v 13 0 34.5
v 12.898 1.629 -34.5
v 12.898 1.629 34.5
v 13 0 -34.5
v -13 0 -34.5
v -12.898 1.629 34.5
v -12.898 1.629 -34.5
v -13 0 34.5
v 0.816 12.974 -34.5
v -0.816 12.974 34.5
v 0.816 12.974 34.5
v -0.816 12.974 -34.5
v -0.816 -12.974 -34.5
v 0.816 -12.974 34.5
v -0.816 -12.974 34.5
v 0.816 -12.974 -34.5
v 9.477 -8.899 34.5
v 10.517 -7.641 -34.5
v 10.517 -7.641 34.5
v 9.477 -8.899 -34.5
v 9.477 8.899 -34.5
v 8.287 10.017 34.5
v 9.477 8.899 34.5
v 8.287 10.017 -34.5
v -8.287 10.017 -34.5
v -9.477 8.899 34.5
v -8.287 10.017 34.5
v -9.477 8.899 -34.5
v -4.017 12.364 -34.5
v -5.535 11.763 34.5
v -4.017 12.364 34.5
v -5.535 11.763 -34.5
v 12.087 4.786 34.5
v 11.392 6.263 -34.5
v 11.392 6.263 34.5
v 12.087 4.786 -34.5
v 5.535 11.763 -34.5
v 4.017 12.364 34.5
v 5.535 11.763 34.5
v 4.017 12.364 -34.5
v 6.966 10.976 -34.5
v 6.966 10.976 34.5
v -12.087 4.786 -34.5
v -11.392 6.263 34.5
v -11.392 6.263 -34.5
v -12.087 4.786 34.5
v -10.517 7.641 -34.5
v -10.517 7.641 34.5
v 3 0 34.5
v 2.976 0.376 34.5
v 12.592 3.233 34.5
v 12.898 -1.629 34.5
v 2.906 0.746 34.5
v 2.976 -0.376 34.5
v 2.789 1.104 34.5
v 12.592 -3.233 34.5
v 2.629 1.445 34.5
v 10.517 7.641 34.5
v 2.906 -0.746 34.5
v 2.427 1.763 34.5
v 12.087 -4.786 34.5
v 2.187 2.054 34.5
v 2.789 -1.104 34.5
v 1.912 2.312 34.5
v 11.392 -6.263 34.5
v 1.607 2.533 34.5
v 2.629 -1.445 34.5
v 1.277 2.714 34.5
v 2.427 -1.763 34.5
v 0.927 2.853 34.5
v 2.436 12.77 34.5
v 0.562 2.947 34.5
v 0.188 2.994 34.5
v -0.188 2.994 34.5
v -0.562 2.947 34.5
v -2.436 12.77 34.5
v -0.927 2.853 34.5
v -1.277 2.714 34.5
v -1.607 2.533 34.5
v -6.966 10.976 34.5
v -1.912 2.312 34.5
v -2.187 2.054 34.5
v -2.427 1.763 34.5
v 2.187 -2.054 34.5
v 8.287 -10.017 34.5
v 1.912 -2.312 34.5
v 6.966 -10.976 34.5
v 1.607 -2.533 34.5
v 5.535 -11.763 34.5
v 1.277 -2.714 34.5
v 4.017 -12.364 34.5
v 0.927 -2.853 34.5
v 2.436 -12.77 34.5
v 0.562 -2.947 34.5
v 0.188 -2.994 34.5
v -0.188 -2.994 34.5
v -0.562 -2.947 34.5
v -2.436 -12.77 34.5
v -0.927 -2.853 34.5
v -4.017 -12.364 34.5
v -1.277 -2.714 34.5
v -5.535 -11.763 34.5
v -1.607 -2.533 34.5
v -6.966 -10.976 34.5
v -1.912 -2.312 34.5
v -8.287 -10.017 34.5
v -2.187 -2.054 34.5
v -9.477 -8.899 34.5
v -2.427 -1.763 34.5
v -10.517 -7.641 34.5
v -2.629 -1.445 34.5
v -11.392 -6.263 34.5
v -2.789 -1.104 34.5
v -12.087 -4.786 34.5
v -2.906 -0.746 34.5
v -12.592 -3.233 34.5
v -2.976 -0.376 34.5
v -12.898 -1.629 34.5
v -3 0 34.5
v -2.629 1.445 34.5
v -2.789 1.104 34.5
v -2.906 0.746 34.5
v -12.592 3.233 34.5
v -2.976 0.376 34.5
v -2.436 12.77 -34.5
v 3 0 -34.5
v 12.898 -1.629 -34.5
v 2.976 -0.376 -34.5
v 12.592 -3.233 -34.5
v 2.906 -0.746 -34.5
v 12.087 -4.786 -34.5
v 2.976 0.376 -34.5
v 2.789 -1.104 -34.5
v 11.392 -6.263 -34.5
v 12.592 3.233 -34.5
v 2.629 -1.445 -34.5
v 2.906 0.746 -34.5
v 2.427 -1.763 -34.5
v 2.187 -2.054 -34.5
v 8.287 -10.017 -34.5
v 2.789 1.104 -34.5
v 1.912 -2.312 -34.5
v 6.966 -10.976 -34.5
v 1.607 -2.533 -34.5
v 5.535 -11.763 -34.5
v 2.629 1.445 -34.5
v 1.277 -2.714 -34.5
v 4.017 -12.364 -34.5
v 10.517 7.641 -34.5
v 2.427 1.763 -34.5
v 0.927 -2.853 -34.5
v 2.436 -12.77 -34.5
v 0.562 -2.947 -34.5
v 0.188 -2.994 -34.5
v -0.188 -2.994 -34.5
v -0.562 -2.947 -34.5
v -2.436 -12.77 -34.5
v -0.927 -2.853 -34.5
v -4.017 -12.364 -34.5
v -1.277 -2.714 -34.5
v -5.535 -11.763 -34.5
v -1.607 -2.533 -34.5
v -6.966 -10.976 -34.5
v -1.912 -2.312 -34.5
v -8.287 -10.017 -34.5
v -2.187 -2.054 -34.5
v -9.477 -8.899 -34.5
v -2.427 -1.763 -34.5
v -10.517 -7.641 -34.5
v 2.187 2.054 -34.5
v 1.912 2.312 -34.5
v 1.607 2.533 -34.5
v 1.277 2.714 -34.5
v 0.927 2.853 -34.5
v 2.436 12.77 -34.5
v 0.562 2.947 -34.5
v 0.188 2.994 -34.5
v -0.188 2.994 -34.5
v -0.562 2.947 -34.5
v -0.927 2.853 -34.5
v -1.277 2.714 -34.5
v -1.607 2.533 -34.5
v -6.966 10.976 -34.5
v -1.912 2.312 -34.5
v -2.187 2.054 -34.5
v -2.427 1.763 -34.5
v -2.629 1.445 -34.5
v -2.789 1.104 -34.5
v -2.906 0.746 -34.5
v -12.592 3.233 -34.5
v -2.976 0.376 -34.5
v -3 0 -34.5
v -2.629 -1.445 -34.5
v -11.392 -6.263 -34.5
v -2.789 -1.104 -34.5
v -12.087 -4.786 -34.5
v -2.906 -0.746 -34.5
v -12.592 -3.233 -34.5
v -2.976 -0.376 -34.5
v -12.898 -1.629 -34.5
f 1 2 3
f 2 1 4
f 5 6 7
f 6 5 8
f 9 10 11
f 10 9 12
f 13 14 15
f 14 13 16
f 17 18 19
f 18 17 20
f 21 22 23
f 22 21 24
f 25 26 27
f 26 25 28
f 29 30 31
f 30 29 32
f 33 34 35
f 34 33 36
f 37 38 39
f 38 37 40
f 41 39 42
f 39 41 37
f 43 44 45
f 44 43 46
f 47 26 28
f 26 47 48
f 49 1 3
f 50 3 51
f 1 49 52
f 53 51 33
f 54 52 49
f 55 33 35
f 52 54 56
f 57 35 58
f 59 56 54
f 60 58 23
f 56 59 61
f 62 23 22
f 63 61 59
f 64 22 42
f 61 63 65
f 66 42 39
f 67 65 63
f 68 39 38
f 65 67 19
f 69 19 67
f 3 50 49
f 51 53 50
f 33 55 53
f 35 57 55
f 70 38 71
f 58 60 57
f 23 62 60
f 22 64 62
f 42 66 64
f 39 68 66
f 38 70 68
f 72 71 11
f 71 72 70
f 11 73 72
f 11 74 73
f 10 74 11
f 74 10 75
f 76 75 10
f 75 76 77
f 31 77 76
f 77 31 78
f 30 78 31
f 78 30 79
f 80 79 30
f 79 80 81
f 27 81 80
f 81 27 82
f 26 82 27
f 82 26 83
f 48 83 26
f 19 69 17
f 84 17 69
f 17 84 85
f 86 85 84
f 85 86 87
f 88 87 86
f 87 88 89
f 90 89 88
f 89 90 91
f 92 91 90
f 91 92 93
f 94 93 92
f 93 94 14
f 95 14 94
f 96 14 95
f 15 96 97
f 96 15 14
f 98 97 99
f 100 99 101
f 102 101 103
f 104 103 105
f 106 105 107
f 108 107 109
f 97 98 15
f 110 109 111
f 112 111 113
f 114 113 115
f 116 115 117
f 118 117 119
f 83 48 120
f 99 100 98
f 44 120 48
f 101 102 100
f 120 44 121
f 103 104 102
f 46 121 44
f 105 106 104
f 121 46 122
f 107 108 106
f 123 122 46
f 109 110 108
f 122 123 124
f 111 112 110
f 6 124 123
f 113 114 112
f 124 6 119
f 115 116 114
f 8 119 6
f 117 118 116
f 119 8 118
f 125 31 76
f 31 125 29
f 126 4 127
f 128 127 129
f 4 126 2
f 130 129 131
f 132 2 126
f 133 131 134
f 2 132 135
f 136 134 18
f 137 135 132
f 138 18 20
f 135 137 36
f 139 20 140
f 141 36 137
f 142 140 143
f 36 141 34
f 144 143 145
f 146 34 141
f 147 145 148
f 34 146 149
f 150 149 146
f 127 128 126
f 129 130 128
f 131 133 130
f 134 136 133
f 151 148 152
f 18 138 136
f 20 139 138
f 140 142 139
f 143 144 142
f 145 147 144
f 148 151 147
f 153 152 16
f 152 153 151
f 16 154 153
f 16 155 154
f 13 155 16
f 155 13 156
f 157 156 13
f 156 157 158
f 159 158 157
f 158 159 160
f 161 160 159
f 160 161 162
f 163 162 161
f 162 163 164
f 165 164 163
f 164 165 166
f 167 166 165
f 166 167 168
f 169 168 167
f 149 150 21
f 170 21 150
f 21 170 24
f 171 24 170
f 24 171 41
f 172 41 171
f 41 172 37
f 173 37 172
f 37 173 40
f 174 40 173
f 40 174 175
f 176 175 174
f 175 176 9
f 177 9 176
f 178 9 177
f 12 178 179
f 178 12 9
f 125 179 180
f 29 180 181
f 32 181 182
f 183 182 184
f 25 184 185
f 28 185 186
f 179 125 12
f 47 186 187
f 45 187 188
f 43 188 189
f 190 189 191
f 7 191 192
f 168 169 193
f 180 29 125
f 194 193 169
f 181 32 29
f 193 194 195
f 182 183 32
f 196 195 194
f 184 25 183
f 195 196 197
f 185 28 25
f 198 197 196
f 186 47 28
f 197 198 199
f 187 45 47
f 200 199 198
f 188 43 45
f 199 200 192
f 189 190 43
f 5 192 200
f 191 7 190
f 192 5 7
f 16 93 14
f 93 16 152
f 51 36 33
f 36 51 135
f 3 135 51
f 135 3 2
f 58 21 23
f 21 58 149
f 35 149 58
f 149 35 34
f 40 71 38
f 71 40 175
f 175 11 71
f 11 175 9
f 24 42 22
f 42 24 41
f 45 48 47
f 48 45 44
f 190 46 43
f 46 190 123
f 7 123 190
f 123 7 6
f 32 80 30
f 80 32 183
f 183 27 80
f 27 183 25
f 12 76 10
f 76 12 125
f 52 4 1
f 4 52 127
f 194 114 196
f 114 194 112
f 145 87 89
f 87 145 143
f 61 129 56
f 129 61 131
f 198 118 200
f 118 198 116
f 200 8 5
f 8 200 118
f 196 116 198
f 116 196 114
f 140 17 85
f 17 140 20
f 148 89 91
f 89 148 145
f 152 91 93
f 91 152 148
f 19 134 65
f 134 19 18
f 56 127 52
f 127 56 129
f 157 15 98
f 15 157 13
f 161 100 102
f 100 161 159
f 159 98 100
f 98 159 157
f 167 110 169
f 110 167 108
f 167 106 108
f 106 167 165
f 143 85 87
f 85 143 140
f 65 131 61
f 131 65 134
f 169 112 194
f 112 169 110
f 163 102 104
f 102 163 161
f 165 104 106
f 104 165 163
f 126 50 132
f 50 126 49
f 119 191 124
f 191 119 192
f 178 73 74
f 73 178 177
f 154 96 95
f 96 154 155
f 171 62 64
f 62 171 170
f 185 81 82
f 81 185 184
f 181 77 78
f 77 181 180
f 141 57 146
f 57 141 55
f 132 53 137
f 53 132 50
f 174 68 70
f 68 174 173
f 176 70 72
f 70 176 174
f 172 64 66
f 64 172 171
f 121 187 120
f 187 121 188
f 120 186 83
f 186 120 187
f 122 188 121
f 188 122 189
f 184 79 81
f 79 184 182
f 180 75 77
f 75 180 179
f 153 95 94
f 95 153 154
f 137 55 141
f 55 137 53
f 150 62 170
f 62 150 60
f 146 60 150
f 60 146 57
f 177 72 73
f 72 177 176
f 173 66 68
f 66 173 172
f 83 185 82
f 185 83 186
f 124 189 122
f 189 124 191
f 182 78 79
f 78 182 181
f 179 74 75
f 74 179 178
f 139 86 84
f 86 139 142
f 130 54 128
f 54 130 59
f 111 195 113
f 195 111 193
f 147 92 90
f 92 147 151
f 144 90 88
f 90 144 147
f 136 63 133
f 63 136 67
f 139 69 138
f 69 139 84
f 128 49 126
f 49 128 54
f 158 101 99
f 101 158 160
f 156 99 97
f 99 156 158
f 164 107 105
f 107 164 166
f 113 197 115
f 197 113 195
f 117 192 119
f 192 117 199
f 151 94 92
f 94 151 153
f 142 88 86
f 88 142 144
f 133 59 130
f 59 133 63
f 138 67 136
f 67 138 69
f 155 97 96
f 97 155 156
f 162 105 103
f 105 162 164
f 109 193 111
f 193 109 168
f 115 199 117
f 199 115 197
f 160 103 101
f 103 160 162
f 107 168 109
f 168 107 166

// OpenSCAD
$fn = 50;


difference() {
	union() {
		translate(v = [0, 0, -34.5000000000]) {
			cylinder(h = 69, r = 13.0000000000);
		}
	}
	union() {
		translate(v = [0, 0, -100.0000000000]) {
			cylinder(h = 200, r = 3.0000000000);
		}
	}
}
